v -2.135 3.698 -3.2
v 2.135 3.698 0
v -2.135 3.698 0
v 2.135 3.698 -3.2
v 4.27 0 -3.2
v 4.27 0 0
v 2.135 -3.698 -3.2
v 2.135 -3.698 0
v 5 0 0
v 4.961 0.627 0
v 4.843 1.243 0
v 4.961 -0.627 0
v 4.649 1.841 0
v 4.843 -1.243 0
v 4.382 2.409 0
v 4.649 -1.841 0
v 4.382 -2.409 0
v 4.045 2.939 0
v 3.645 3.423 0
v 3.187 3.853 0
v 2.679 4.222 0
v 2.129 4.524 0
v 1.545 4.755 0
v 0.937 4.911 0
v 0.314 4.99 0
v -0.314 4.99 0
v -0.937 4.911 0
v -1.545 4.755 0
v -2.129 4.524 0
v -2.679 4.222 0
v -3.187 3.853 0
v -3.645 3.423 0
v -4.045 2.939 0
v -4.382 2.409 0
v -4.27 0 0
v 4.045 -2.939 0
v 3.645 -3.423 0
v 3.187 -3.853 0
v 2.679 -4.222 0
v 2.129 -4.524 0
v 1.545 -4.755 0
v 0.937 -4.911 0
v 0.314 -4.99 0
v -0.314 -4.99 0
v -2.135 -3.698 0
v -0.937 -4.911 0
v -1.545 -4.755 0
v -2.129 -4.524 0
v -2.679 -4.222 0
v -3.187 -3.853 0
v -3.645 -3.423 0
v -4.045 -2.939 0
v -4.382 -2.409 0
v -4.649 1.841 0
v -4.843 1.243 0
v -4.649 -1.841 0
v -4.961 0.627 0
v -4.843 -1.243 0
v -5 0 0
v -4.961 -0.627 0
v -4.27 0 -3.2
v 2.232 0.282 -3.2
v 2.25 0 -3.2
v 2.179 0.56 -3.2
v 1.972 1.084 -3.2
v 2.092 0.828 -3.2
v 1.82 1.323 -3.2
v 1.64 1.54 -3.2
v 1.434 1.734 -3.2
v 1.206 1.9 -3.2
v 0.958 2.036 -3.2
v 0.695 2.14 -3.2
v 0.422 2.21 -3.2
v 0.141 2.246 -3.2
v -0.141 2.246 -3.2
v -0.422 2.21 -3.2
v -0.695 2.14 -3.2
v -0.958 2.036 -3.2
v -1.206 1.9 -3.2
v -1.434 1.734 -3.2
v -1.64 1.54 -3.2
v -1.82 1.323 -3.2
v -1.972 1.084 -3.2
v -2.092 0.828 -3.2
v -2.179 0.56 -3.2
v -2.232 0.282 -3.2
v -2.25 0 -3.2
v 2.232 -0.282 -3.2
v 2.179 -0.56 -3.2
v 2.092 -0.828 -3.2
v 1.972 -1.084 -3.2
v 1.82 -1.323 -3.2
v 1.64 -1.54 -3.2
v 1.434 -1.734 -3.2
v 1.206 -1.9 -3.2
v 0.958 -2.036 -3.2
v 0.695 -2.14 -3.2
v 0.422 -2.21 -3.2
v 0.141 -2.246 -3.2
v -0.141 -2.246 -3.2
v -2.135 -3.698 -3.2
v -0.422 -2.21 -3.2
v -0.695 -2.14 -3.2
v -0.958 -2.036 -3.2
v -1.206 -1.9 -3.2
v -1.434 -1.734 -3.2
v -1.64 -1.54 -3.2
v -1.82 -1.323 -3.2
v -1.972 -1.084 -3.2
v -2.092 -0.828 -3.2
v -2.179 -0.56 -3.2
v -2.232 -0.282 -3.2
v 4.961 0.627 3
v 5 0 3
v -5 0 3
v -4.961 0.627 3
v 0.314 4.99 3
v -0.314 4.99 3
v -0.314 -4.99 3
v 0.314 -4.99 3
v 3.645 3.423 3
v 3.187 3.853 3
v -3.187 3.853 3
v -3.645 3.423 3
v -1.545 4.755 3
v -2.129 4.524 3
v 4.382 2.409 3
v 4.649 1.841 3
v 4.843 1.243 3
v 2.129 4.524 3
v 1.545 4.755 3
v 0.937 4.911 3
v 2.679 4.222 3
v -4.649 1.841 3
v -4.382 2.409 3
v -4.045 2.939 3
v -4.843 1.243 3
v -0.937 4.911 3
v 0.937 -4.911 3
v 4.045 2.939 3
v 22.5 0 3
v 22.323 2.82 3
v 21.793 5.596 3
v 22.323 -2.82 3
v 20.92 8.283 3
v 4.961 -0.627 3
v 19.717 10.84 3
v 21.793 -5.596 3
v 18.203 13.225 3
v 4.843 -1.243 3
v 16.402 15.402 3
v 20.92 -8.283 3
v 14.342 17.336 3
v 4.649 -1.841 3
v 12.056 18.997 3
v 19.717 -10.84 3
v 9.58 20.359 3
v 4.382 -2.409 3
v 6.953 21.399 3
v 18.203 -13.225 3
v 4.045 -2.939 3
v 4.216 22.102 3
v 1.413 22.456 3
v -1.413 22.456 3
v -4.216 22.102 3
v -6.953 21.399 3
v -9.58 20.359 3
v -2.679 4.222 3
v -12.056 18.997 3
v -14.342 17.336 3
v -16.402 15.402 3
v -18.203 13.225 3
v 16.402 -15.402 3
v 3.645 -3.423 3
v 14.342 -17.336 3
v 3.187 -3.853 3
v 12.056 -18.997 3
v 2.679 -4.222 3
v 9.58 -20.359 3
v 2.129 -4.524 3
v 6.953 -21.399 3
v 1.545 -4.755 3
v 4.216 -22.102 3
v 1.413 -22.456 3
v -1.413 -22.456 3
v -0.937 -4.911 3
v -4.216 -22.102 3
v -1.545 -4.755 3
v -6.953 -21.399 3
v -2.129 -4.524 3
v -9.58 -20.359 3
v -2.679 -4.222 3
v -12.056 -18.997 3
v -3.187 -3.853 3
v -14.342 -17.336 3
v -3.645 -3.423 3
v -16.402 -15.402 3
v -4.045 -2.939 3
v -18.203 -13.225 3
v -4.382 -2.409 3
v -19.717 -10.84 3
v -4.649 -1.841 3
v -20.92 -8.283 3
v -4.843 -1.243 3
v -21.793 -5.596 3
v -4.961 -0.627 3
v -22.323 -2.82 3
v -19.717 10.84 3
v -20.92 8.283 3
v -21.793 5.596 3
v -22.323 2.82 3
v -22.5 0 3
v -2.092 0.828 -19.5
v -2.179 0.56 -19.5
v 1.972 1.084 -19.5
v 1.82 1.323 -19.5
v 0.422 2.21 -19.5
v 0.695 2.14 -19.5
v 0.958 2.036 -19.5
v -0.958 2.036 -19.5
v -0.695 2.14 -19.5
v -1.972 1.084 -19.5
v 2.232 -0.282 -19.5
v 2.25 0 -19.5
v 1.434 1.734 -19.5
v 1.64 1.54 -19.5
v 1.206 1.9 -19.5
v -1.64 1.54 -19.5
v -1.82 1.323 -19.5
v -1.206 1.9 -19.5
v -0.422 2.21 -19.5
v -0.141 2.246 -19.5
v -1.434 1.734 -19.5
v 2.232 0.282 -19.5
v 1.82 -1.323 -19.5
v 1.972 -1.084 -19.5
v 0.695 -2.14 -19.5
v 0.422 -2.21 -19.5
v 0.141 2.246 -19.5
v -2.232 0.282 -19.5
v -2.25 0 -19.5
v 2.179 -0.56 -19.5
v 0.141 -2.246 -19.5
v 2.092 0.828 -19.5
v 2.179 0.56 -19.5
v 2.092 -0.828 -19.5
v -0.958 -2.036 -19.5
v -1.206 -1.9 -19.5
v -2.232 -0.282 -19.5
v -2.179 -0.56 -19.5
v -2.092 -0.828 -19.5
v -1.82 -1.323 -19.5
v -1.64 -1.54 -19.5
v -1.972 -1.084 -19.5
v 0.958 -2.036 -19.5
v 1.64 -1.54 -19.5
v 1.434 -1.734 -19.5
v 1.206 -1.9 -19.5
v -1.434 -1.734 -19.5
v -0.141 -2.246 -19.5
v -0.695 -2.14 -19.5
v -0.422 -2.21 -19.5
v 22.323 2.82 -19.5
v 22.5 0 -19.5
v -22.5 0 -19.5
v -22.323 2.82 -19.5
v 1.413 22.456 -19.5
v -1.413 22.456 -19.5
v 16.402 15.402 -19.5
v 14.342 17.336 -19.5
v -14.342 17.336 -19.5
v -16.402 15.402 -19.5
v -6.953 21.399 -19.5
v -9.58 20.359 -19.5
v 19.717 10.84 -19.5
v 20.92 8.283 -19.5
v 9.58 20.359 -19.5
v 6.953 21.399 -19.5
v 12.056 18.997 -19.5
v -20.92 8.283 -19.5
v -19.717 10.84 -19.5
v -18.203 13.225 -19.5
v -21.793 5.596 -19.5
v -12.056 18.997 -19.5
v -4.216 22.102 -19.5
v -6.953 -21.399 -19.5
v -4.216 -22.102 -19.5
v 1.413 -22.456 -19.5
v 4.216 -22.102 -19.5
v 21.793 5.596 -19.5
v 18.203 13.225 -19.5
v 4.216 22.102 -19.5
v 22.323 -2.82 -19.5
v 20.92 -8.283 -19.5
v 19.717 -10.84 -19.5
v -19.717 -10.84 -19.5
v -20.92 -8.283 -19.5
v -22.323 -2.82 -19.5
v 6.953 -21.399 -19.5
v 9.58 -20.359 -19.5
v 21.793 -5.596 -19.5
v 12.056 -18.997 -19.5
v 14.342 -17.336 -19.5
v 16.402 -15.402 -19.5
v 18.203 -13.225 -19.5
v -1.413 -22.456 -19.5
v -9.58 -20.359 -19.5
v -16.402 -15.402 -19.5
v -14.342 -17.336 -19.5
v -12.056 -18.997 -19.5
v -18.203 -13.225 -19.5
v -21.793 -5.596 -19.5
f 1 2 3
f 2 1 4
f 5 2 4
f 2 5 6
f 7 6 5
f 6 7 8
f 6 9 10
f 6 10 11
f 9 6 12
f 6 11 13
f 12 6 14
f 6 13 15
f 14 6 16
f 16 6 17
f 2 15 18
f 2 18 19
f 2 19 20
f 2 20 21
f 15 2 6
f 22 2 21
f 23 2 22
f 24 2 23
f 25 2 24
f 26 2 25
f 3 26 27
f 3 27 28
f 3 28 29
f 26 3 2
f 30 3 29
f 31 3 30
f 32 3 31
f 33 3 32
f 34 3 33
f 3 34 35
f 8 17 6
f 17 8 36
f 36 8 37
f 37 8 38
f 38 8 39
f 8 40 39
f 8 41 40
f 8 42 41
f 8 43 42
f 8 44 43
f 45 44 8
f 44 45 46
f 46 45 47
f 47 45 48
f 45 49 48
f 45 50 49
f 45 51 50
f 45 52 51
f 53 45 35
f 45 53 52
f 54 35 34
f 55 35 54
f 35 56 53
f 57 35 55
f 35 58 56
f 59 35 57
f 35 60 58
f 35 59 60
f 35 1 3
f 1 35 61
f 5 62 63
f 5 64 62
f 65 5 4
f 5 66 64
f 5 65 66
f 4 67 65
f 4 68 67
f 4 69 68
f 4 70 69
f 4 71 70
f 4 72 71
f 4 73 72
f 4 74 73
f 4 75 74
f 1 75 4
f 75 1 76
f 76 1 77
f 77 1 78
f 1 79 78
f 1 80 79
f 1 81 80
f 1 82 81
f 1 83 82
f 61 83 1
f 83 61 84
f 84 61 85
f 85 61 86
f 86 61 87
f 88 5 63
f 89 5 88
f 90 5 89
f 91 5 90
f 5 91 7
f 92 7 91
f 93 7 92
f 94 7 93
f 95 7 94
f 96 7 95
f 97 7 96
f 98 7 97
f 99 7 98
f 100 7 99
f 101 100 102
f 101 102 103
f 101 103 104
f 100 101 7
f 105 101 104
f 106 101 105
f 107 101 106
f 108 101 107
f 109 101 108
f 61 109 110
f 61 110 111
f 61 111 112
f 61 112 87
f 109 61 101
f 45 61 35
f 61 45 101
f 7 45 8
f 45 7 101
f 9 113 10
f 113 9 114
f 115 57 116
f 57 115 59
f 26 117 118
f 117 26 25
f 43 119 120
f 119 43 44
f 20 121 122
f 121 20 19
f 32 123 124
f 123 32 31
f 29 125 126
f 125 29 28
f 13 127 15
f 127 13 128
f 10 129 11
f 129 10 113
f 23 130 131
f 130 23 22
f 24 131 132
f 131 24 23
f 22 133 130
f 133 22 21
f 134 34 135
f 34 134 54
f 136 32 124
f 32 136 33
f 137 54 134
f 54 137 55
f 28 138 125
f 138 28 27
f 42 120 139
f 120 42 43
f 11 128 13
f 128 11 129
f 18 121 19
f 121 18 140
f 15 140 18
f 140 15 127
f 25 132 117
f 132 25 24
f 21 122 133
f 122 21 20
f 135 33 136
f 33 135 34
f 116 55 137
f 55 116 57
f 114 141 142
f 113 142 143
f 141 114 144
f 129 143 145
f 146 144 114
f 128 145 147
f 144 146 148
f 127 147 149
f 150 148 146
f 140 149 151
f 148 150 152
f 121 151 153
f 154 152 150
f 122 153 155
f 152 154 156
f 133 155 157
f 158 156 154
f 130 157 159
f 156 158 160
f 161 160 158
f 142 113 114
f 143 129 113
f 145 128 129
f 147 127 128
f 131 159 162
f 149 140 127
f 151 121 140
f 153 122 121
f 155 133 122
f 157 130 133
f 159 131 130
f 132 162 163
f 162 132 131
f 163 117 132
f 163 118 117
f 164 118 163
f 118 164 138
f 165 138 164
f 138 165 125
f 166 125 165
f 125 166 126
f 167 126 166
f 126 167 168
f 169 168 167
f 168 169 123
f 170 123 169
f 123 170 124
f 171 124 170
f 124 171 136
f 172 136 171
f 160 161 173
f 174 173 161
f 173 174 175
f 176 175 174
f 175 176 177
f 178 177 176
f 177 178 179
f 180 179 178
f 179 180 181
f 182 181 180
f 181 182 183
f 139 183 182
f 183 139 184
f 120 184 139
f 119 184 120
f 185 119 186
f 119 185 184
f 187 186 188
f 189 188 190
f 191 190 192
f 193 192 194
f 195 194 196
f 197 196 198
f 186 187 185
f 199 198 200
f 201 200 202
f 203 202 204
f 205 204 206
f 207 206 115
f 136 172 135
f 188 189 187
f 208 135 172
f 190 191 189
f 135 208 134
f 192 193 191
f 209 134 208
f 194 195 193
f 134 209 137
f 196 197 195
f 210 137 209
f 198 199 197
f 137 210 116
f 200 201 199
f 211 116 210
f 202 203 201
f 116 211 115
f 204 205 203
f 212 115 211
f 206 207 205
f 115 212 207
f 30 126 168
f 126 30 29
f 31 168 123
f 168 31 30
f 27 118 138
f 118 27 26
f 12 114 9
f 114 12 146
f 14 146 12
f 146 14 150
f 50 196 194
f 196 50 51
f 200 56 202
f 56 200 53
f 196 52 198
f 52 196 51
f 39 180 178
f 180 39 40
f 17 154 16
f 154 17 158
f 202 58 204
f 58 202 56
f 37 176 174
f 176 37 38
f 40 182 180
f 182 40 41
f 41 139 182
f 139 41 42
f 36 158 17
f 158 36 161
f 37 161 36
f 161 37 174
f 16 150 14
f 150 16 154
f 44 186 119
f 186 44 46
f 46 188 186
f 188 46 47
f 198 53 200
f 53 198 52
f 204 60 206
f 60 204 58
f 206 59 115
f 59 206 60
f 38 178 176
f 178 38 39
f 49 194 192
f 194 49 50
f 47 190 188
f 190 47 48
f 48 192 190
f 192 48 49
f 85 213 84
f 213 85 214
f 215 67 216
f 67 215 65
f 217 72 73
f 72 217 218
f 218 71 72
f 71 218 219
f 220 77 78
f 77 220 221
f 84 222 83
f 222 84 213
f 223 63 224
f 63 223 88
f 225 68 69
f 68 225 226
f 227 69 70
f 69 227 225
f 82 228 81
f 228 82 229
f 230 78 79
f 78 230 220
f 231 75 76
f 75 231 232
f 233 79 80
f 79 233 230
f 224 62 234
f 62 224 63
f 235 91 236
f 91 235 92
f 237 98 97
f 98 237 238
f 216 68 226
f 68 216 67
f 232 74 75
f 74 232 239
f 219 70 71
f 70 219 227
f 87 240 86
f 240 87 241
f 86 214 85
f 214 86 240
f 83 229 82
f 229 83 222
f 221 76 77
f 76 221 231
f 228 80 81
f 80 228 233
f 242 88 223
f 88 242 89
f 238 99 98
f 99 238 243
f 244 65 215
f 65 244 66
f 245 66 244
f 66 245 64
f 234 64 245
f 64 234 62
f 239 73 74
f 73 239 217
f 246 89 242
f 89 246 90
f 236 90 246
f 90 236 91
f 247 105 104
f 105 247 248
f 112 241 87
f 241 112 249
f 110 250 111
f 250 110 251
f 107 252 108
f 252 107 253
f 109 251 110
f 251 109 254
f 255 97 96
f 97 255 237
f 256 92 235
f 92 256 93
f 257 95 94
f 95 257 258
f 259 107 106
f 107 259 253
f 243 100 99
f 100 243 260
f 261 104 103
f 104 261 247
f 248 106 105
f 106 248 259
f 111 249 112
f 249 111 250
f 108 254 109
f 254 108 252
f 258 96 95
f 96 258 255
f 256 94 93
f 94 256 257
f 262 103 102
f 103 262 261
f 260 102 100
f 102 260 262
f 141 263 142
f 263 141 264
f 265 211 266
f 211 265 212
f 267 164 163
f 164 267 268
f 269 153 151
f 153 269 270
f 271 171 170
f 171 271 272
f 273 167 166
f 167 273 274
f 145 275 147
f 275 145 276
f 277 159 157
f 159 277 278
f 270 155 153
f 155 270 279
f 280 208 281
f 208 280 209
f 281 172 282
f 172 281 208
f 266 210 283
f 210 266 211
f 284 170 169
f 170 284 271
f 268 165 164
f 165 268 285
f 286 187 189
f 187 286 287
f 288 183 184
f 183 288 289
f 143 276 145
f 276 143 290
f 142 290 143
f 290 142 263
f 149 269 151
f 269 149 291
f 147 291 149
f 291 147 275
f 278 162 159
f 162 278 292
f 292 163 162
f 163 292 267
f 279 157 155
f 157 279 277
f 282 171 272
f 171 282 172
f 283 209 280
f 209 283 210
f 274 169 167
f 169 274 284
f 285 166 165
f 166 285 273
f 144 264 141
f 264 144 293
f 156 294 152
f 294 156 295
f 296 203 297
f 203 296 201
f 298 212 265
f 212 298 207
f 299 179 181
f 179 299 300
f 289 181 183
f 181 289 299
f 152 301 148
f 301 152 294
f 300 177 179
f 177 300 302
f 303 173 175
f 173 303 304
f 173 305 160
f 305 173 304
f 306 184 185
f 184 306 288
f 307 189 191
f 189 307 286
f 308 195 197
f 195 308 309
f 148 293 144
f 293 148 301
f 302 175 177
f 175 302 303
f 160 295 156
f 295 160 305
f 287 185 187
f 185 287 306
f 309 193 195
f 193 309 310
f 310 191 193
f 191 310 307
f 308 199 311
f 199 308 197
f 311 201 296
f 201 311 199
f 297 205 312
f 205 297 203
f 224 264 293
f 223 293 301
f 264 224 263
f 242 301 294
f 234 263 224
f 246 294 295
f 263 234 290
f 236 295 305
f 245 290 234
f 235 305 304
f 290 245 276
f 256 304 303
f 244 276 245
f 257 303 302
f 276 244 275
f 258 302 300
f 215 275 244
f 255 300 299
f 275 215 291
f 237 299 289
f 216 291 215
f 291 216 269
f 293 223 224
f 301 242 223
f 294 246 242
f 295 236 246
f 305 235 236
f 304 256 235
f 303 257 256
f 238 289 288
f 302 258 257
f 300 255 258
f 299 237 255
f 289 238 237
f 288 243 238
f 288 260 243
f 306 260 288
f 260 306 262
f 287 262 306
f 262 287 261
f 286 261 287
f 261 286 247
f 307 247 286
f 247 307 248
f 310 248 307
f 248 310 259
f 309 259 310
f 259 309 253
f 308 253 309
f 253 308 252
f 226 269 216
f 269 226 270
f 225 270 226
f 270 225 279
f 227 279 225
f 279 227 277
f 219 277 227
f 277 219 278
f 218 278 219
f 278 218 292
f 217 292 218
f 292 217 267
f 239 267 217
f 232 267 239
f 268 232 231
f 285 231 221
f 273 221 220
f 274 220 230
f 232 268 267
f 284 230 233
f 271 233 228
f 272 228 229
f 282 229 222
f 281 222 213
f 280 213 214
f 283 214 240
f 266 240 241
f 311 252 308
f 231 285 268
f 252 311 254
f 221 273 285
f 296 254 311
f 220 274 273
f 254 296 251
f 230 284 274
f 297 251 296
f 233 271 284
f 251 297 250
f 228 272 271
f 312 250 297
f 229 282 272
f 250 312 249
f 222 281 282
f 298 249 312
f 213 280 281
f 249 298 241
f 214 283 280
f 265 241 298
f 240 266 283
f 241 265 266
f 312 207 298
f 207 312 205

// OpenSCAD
$fn = 50;


difference() {
	union() {
		translate(v = [0, 0, -19.5000000000]) {
			cylinder(h = 22.5000000000, r = 22.5000000000);
		}
	}
	union() {
		translate(v = [0, 0, 0]) {
			rotate(a = [0, 0, 0]) {
				difference() {
					union() {
						translate(v = [0, 0, -3.2000000000]) {
							linear_extrude(height = 3.2000000000) {
								polygon(points = [[4.2698000000, 0.0000000000], [2.1349000000, 3.6977552691], [-2.1349000000, 3.6977552691], [-4.2698000000, 0.0000000000], [-2.1349000000, -3.6977552691], [2.1349000000, -3.6977552691]]);
							}
						}
					}
					union();
				}
			}
		}
		#cylinder(h = 3, r = 5.0000000000);
		#translate(v = [0, 0, -100.0000000000]) {
			cylinder(h = 200, r = 2.2500000000);
		}
	}
}
